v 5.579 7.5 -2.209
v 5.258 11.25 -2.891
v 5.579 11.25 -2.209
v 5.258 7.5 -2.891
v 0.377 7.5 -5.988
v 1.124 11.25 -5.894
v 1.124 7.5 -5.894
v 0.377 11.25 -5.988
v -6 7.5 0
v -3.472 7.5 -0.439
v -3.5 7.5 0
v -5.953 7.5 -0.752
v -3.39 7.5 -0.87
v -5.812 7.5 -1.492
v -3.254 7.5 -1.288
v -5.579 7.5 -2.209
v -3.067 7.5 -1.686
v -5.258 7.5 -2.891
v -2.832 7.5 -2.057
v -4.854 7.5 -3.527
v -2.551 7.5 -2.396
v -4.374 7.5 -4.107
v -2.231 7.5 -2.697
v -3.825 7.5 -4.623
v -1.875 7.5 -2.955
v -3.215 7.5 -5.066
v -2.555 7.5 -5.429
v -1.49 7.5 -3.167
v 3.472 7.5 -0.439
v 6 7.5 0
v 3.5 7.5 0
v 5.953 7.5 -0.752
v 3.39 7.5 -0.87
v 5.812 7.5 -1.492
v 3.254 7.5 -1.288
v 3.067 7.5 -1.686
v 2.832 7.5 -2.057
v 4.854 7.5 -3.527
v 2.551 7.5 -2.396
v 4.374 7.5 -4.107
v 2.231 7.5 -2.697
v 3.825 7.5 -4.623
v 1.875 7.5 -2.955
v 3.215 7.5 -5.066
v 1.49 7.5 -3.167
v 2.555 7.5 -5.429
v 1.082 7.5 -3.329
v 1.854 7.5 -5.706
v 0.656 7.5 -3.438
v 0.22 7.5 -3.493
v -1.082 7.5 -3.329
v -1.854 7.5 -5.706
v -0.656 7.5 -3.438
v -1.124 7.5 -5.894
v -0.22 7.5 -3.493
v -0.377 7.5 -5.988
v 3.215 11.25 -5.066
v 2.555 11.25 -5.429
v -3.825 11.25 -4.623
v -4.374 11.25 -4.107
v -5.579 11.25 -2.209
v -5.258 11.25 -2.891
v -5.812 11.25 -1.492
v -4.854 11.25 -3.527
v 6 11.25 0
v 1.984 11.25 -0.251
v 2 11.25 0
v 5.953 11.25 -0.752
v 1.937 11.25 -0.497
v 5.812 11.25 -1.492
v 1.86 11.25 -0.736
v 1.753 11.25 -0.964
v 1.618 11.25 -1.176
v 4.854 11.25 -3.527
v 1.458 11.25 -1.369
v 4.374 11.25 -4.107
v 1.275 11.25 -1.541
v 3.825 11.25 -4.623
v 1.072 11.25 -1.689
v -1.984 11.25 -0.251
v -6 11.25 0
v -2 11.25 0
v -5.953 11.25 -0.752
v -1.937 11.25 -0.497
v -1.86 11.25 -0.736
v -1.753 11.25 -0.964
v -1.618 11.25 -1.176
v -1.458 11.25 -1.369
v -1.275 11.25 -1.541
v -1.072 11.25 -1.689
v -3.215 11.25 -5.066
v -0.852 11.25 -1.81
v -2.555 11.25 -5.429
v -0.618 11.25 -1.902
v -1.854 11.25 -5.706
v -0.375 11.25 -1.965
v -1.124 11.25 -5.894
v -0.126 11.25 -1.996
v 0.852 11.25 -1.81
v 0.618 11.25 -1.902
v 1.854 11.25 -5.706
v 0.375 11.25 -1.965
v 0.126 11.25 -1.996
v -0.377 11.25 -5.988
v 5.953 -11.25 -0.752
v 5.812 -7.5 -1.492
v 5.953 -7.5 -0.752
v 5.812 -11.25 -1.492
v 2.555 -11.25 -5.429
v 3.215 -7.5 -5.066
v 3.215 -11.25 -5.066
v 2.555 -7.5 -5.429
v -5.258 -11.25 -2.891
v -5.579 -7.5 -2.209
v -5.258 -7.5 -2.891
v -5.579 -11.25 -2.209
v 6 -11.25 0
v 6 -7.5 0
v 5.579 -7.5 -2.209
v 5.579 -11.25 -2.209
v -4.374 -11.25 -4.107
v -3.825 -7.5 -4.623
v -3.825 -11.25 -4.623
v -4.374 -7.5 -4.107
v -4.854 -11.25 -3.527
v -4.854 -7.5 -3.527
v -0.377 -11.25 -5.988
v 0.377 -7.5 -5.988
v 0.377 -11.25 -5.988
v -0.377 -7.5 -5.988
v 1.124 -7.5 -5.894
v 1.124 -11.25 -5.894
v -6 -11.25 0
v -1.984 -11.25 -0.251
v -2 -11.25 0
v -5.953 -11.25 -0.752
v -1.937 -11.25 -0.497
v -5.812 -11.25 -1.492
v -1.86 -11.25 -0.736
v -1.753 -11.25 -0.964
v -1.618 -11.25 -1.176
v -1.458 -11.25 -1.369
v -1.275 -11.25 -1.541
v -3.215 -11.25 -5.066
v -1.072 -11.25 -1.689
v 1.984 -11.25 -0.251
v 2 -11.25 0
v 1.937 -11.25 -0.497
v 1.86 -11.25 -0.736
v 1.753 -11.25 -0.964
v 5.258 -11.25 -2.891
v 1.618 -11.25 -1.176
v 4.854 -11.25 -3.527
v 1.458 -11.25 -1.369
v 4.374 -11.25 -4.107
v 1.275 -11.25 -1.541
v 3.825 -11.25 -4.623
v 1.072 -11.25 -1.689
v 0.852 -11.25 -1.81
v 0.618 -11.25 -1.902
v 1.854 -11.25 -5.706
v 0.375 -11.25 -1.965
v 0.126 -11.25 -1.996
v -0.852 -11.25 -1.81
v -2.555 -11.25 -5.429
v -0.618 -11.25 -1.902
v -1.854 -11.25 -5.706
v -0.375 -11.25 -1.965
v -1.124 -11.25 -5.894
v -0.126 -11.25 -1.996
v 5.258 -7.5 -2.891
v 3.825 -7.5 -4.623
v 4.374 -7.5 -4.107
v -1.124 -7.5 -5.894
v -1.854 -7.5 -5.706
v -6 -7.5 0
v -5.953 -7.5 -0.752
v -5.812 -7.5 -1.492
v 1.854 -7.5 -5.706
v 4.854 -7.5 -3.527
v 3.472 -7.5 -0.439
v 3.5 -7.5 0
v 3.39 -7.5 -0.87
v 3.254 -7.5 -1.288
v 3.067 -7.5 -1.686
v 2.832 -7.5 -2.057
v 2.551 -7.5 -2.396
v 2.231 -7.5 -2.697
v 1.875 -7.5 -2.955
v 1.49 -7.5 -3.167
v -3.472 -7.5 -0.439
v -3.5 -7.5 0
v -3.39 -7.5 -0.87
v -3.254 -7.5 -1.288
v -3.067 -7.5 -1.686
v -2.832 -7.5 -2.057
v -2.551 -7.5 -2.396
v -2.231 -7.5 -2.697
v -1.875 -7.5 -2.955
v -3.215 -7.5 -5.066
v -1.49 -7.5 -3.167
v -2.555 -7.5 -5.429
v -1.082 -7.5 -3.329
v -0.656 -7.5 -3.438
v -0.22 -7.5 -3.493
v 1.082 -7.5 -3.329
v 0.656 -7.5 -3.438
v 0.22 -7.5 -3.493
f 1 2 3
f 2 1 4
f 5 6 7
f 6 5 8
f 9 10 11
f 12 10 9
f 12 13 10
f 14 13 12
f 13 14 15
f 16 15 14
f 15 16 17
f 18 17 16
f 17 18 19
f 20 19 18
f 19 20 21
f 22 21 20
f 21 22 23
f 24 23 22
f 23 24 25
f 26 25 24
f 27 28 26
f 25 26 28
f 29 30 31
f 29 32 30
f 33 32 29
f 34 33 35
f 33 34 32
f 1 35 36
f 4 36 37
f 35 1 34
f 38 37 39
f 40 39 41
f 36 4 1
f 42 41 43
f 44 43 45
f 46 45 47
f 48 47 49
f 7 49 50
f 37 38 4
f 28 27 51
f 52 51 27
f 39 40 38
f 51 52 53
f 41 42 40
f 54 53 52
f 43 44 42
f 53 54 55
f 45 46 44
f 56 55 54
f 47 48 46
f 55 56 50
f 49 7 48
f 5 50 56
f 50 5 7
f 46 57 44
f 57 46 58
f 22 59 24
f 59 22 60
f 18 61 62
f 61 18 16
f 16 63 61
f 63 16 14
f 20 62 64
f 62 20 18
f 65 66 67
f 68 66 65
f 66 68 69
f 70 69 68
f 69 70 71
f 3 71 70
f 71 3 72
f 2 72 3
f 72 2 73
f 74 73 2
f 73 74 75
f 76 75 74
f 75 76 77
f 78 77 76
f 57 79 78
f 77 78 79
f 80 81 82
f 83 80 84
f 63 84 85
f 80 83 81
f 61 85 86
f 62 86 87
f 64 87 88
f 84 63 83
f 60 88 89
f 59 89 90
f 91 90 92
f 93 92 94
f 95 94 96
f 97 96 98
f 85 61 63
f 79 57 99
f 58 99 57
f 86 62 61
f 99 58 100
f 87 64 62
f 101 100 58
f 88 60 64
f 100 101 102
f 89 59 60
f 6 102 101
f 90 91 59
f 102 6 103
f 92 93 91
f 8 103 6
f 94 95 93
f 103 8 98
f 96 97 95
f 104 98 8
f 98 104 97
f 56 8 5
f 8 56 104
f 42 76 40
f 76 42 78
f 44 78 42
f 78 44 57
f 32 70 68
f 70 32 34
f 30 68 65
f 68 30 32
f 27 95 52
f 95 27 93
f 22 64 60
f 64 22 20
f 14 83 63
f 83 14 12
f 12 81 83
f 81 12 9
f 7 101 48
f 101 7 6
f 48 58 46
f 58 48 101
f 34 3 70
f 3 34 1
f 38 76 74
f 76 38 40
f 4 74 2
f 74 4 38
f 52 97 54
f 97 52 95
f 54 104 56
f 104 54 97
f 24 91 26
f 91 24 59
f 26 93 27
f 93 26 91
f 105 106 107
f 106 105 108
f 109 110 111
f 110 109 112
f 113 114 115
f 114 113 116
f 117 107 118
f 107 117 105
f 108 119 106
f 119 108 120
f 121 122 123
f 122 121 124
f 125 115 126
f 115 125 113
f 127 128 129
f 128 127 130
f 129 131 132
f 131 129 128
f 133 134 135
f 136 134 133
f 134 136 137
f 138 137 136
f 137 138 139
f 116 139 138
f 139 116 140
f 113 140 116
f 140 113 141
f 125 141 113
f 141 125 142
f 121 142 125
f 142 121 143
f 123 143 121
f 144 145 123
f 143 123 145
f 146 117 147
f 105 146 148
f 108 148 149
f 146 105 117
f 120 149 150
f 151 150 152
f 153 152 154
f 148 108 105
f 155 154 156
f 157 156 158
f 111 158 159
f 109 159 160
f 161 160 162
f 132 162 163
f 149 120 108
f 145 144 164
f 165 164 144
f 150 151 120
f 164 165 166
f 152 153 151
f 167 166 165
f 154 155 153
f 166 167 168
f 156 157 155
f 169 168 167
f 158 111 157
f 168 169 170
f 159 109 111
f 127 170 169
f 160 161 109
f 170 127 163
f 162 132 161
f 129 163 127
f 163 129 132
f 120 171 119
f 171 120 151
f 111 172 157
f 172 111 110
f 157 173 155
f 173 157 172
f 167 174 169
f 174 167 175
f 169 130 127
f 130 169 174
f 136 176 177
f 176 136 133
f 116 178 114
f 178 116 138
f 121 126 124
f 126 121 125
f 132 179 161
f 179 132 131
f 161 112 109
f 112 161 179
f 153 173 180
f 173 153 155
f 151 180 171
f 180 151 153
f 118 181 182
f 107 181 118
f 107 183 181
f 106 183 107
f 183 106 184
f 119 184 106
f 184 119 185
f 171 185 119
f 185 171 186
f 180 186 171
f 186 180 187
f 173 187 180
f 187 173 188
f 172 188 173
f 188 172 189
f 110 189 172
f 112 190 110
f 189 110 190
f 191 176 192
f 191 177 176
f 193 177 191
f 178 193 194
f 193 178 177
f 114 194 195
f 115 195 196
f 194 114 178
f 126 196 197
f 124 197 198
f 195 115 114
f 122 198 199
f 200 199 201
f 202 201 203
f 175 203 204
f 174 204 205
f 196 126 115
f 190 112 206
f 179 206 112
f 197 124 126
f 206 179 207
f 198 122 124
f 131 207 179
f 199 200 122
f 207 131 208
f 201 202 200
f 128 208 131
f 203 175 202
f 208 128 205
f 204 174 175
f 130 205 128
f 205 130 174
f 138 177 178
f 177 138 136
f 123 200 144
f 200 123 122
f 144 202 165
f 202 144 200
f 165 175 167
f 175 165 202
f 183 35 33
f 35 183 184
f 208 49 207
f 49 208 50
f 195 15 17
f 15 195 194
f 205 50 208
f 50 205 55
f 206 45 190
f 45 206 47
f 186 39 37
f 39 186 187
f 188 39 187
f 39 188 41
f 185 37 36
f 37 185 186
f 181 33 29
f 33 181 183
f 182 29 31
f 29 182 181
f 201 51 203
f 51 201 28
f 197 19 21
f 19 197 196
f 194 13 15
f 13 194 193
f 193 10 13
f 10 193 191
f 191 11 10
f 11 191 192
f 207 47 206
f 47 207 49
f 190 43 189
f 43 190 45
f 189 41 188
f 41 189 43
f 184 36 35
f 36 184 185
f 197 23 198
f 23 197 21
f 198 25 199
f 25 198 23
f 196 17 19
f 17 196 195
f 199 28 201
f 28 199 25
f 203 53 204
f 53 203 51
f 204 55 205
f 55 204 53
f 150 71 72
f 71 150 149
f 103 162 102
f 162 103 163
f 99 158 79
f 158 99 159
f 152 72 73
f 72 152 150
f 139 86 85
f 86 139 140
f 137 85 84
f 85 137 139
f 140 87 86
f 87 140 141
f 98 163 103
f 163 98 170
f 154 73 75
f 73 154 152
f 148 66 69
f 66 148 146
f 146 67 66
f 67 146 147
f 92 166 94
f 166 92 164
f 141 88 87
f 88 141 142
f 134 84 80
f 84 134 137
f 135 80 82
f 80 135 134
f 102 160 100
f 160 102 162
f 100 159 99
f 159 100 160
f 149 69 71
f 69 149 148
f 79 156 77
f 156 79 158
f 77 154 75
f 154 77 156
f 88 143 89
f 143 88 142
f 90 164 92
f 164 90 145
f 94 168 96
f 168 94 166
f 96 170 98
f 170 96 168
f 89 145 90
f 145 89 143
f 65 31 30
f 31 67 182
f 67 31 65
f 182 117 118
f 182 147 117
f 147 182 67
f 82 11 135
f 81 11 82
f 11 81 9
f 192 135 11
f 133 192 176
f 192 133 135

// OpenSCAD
$fn = 50;


difference() {
	union() {
		translate(v = [0, 11.2500000000, 0.0000000000]) {
			rotate(a = [90, 0, 0]) {
				cylinder(h = 3.7500000000, r = 6.0000000000);
			}
		}
		translate(v = [0, -7.5000000000, 0.0000000000]) {
			rotate(a = [90, 0, 0]) {
				cylinder(h = 3.7500000000, r = 6.0000000000);
			}
		}
		translate(v = [0, 11.2500000000, 0.0000000000]) {
			rotate(a = [90, 0, 0]) {
				cylinder(h = 22.5000000000, r = 3.5000000000);
			}
		}
	}
	union() {
		translate(v = [0, 11.2500000000, 0.0000000000]) {
			rotate(a = [90, 0, 0]) {
				cylinder(h = 22.5000000000, r = 2.0000000000);
			}
		}
		translate(v = [-250.0000000000, -250.0000000000, 0]) {
			cube(size = [500, 500, 500]);
		}
		translate(v = [-250.0000000000, -250.0000000000, 0]) {
			cube(size = [500, 500, 500]);
		}
		translate(v = [-250.0000000000, -250.0000000000, 0]) {
			cube(size = [500, 500, 500]);
		}
	}
}
